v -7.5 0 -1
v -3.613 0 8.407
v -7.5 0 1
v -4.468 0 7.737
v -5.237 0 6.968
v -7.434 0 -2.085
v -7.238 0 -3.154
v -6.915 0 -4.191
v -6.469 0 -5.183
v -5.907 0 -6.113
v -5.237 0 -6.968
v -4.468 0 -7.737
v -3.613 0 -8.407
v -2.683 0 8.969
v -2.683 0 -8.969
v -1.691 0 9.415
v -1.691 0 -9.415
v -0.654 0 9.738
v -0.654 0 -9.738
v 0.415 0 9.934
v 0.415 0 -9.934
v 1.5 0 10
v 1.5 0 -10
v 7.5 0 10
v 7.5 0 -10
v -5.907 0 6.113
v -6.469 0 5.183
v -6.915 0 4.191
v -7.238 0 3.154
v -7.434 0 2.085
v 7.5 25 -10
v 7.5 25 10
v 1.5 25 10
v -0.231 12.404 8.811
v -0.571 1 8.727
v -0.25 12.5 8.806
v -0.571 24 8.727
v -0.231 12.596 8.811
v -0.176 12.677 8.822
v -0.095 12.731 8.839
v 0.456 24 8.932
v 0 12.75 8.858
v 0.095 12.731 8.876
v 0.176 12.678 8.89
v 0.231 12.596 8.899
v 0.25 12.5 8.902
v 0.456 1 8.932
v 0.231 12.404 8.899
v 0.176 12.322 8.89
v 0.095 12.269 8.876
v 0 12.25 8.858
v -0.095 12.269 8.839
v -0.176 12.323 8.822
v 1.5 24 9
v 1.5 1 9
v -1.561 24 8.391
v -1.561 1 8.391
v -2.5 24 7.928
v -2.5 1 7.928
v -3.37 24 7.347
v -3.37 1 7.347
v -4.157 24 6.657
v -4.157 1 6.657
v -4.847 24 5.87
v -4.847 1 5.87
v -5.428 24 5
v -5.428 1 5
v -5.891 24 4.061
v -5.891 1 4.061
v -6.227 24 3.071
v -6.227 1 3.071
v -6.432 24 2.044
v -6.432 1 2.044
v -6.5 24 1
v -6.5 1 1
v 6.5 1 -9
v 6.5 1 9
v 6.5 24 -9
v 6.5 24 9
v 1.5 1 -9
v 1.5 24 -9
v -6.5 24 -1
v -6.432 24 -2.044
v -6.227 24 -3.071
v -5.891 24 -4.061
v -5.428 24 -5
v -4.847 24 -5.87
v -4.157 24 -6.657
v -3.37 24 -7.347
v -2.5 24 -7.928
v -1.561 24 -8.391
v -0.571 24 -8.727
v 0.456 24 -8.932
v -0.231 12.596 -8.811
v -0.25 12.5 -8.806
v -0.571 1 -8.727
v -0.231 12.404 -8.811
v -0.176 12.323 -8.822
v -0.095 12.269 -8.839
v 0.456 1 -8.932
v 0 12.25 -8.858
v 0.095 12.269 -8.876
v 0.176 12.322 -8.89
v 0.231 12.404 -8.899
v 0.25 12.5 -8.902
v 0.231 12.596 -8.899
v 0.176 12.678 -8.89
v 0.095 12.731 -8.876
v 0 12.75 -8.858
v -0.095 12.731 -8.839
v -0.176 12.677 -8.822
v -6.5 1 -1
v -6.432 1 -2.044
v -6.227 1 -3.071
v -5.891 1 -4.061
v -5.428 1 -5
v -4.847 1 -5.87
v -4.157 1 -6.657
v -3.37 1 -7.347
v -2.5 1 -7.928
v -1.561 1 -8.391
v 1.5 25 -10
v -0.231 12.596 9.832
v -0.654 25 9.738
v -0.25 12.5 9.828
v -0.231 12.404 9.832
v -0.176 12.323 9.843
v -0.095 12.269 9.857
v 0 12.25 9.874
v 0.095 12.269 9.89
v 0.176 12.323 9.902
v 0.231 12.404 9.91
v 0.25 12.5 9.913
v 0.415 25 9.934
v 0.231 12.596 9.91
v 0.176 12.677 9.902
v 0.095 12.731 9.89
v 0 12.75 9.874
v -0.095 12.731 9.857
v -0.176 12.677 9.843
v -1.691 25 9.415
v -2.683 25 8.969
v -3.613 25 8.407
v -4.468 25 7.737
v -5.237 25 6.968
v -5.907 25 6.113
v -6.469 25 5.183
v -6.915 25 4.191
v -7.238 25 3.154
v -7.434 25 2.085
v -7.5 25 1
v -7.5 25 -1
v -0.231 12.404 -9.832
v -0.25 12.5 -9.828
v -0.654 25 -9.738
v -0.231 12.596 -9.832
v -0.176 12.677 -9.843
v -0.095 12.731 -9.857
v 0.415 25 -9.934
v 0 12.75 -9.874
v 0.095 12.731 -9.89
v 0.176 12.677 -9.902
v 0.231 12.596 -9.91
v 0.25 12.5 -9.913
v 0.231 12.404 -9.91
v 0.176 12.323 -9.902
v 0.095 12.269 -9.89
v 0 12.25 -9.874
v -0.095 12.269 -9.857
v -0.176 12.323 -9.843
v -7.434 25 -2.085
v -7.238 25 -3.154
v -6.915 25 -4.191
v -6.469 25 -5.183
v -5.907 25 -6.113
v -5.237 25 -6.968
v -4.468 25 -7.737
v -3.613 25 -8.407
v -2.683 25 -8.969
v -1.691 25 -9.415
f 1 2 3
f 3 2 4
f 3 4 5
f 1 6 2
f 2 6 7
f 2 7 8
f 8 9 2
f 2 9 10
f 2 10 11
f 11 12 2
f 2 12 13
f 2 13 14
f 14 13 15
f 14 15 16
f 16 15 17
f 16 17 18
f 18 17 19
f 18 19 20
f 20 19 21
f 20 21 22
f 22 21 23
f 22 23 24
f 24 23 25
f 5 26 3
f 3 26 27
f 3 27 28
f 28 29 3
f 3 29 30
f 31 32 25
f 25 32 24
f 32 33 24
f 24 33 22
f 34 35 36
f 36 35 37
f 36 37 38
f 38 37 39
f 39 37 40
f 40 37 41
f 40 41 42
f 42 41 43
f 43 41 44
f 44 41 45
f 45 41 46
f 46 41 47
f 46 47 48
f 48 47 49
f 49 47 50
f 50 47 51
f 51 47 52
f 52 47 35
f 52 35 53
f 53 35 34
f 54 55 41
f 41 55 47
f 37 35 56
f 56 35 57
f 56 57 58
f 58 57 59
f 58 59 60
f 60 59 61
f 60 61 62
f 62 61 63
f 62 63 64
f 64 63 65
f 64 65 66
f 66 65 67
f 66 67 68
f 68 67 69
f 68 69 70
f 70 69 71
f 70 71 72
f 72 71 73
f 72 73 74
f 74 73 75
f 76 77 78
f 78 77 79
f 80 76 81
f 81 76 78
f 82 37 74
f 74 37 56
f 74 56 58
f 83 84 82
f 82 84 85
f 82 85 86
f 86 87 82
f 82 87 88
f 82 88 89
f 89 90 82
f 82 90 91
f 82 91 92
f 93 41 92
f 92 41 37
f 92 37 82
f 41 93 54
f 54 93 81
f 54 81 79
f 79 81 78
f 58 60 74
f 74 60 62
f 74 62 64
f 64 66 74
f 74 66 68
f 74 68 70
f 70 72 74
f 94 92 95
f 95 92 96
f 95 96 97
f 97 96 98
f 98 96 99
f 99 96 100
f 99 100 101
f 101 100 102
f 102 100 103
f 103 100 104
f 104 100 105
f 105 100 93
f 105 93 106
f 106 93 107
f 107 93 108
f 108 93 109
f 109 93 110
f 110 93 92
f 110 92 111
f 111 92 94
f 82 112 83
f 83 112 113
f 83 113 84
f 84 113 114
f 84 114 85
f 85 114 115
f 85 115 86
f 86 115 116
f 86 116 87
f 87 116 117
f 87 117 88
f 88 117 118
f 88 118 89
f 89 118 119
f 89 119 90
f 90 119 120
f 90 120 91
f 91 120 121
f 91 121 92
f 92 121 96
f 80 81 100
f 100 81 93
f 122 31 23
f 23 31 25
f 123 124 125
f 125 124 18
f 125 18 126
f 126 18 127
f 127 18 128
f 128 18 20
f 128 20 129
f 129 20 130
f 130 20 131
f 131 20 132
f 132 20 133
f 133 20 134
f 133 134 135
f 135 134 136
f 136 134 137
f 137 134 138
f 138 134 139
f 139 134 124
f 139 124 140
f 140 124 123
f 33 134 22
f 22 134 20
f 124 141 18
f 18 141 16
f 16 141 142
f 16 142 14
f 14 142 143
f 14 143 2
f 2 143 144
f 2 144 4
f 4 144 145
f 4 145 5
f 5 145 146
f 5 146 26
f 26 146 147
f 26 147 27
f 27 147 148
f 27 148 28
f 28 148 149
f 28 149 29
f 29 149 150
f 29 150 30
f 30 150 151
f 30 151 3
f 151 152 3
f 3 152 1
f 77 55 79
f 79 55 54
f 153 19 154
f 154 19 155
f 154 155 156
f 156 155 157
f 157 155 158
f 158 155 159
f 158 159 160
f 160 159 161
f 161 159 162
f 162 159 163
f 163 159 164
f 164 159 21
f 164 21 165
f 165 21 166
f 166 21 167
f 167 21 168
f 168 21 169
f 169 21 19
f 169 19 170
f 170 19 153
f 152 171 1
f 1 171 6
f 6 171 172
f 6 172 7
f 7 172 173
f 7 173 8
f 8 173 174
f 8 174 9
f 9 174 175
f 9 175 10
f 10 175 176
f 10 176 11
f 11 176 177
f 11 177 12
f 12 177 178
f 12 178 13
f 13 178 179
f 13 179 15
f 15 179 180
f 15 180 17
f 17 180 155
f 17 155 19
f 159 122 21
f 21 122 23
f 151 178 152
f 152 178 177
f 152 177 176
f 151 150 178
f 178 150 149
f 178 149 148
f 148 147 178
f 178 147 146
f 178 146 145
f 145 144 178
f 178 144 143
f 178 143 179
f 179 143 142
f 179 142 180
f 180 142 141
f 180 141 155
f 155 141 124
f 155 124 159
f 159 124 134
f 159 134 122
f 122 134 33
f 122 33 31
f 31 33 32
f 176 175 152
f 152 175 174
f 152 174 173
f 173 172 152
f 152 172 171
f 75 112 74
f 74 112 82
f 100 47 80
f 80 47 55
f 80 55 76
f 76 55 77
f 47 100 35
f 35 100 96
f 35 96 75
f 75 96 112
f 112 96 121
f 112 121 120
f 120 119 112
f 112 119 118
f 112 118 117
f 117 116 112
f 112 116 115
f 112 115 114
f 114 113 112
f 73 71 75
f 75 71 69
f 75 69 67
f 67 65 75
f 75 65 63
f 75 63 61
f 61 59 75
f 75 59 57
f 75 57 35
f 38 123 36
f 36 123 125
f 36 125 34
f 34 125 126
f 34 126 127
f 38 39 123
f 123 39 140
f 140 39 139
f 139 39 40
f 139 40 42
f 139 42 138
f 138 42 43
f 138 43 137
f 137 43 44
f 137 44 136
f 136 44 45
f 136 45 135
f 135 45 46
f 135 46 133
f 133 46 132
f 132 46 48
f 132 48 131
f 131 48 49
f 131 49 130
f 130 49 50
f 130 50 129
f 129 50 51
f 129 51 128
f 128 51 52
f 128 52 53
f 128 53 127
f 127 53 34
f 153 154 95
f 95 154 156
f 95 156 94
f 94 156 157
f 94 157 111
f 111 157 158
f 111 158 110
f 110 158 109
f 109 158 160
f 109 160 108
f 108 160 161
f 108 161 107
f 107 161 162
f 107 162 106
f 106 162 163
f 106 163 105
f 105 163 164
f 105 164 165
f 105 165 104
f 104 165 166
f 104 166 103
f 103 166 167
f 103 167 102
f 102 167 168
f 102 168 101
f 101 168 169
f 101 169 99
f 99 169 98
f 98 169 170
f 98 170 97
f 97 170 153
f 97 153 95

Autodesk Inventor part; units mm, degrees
ref_plane "YZ Plane" through (0, 0, 0) normal (1, 0, 0) x (0, 1, 0)
ref_plane "XZ Plane" through (0, 0, 0) normal (0, 1, 0) x (-1, 0, 0)
ref_plane "XY Plane" through (0, 0, 0) normal (0, 0, 1) x (1, 0, 0)
sketch "Sketch1" plane through (0, 0, 0) normal (0, 1, 0) x (-1, 0, 0)
  line L0 (-7.5, 10) -> (-1.5, 10)
  line L1 (7.5, 1) -> (7.5, -1)
  line L2 (-1.5, -10) -> (-7.5, -10)
  line L3 (-7.5, -10) -> (-7.5, 10)
  line L4 (-7.5, 10) -> (7.5, -10) construction
  line L5 (7.5, 10) -> (-7.5, -10) construction
  arc A0 (7.5, 1) -> (-1.5, 10) centre (-1.5, 1) ccw
  arc A1 (-1.5, -10) -> (7.5, -1) centre (-1.5, -1) ccw
  point P0 (0, 0)
  dimension "d0" = 15
  dimension "d1" = 20
  dimension "d4" = 9
  dimension "d5" = 9
extrude "Extrusion1" add sketch "Sketch1" along normal blind 25
shell "Shell1" thickness 1 removed faces 1 at (-1.5, 0, 0.3333)
extrude "Extrusion2" add sketch "Sketch1" along normal blind 1
sketch "Sketch2" plane through (1.5, 25, 10) normal (0, 0, 1) x (1, 0, 0)
  line L0 (-9, -25) -> (-9, 0) construction
  line L1 (-9, -25) -> (6, 0) construction
  circle A0 centre (-1.5, -12.5) radius 0.25
  point P0 (-1.5, -25)
  dimension "d9" = 0.5
extrude "Extrusion3" cut sketch "Sketch2" against normal through all
properties part number "actuator_tube_test"
